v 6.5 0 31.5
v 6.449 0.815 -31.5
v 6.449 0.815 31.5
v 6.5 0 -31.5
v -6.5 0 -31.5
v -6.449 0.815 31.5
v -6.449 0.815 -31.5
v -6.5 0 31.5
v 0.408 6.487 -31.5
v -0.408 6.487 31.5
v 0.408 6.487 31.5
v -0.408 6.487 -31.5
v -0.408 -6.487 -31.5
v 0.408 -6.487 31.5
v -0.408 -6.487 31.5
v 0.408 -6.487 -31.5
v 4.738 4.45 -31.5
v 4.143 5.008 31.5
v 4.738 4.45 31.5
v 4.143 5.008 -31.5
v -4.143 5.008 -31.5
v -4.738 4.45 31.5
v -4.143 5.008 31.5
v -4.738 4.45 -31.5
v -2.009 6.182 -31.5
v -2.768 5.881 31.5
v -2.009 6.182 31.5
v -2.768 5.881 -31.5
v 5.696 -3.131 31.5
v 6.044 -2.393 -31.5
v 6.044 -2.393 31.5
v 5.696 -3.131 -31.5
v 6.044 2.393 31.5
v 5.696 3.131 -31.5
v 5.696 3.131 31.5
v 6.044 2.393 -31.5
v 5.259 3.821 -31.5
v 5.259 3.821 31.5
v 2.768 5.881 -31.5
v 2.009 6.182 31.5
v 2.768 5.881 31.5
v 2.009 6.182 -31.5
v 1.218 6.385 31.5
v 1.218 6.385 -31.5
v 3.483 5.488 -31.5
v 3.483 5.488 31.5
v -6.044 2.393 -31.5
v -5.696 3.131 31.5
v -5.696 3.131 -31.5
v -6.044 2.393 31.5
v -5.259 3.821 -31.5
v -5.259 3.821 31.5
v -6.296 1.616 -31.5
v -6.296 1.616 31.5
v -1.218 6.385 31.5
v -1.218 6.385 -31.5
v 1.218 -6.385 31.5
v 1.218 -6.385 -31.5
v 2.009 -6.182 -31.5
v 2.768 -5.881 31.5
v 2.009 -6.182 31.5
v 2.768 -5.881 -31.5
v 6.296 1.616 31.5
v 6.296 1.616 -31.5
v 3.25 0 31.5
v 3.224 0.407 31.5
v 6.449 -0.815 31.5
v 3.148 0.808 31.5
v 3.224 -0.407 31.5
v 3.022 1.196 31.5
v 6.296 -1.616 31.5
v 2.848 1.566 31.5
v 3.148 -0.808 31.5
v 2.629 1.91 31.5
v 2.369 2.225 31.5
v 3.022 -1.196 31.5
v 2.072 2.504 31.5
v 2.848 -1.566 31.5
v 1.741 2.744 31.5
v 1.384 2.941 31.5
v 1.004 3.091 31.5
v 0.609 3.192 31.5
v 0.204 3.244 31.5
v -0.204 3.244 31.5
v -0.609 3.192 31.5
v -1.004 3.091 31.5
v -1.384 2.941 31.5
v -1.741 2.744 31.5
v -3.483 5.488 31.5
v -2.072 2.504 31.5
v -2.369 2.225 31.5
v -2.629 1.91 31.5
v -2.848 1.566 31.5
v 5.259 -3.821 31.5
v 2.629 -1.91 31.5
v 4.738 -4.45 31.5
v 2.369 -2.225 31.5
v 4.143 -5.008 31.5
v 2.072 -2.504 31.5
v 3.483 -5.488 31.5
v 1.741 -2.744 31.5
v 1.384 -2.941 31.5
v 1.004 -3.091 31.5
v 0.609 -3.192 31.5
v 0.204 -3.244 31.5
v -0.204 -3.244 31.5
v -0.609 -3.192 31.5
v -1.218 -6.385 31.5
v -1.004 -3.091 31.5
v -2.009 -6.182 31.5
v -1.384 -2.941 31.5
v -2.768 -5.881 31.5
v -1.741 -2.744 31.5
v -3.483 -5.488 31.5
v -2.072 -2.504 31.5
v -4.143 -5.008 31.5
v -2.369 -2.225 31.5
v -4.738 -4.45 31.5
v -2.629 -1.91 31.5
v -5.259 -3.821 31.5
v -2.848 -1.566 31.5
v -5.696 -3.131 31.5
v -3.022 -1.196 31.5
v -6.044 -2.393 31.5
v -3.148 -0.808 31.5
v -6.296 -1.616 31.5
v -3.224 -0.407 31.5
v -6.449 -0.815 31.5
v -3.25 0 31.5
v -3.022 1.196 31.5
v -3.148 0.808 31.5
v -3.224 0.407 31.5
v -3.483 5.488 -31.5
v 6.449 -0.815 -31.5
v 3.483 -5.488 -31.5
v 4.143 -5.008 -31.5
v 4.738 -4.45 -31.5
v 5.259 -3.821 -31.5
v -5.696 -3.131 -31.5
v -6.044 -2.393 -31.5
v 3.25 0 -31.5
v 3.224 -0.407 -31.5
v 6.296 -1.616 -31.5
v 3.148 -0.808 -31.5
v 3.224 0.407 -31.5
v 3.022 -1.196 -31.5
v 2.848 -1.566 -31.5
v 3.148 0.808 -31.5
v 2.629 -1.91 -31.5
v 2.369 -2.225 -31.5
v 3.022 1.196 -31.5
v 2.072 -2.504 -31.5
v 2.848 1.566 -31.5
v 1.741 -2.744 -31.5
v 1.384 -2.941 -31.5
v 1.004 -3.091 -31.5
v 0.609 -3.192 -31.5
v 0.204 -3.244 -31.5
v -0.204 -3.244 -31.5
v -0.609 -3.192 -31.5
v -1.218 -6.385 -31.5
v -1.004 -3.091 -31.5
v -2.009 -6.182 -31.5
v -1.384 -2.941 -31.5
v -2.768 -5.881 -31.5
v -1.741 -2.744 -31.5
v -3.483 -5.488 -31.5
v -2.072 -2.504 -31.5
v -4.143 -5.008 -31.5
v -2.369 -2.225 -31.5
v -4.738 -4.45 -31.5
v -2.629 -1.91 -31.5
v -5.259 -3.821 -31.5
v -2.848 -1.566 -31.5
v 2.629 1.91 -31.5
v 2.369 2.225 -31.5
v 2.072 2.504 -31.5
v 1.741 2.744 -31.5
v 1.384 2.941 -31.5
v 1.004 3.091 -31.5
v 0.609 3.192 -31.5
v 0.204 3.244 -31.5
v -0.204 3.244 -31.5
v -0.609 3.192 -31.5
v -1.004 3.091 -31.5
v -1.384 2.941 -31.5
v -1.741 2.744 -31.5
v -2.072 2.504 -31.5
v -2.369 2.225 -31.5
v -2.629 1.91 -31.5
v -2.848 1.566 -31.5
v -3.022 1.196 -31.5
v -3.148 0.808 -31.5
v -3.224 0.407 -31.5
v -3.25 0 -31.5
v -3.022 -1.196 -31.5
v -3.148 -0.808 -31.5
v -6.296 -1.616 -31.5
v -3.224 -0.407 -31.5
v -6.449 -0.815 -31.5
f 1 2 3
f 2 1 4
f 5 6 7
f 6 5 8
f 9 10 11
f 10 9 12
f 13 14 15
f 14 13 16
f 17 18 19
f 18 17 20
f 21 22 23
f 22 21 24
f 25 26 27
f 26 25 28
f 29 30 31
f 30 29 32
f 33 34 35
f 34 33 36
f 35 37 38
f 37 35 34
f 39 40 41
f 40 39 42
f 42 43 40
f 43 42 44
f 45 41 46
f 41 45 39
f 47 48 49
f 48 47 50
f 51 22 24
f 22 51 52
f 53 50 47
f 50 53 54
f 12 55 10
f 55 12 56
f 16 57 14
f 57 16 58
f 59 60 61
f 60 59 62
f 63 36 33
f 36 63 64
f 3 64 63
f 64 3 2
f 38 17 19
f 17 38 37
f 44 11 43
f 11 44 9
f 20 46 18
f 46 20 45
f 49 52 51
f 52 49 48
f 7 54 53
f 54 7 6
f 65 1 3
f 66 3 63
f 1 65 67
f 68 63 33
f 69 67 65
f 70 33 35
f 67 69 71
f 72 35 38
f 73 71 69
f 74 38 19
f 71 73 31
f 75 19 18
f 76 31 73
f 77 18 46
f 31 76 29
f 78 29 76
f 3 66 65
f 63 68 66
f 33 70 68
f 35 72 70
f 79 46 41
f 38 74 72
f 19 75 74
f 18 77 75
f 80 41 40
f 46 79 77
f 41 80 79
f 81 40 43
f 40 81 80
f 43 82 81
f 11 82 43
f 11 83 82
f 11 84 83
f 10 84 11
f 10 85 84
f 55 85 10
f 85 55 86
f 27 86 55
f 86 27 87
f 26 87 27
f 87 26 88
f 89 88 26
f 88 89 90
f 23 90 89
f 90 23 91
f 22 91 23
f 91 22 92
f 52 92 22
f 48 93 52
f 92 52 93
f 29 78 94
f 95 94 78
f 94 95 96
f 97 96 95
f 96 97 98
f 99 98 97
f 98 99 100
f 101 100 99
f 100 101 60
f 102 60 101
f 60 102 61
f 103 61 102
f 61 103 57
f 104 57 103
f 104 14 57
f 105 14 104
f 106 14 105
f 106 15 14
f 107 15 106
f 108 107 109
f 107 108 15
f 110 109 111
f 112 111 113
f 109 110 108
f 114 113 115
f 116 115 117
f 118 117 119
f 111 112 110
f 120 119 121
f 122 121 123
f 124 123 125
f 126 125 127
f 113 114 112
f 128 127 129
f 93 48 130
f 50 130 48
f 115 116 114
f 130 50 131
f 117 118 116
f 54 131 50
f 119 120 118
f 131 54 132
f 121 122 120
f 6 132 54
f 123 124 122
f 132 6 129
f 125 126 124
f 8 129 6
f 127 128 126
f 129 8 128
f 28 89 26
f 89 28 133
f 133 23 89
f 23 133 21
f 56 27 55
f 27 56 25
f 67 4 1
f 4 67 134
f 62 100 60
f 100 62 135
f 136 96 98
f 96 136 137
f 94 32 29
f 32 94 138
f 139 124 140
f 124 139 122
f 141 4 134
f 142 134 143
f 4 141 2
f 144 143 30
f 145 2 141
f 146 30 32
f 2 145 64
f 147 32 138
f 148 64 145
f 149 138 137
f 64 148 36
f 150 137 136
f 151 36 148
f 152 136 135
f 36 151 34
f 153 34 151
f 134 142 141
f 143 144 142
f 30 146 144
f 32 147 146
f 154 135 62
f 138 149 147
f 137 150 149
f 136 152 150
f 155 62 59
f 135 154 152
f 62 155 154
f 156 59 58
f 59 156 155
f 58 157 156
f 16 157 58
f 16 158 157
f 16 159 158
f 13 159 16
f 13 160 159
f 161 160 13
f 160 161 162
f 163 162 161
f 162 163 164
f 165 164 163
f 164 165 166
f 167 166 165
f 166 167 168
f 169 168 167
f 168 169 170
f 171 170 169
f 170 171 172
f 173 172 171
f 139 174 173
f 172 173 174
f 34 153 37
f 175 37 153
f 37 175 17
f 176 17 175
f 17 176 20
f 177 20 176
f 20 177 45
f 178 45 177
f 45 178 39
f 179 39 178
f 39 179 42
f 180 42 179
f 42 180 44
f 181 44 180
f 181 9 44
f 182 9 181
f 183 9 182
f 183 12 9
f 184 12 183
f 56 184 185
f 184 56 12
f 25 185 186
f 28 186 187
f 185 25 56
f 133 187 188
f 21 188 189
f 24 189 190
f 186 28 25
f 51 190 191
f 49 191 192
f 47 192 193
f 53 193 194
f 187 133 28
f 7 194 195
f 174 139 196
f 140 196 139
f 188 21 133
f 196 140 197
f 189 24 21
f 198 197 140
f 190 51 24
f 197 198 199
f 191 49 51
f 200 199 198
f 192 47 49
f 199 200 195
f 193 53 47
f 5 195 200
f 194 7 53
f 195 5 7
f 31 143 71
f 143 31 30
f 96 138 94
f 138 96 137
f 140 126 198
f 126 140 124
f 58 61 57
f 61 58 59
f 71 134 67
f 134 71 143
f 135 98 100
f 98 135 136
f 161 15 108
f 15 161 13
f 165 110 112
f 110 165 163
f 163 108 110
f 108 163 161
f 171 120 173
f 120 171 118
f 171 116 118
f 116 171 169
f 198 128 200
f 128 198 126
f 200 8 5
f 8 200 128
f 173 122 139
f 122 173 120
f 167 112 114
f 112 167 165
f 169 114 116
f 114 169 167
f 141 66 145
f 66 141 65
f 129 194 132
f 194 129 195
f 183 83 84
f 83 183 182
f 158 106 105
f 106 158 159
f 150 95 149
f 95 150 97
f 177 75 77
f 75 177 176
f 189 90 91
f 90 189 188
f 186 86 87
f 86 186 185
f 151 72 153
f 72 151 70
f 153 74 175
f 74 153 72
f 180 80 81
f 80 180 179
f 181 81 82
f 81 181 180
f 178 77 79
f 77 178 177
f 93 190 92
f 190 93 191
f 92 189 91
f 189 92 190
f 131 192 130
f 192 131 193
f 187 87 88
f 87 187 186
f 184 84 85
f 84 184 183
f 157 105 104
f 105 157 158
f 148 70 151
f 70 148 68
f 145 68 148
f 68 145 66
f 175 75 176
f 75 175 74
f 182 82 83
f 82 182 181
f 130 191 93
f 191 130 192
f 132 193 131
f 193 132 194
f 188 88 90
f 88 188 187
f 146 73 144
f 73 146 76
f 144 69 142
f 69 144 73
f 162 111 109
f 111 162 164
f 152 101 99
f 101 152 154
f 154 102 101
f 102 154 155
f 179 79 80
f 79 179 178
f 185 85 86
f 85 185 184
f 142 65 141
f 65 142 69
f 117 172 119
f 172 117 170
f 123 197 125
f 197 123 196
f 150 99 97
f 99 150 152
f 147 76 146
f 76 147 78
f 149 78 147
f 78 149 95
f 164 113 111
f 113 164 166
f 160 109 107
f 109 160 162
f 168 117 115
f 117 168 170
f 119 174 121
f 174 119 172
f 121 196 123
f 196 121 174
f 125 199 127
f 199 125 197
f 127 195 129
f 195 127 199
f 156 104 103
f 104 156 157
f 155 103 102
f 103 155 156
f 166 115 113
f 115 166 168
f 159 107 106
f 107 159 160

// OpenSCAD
$fn = 50;


difference() {
	union() {
		translate(v = [0, 0, -31.5000000000]) {
			cylinder(h = 63, r = 6.5000000000);
		}
	}
	union() {
		translate(v = [0, 0, -100.0000000000]) {
			cylinder(h = 200, r = 3.2500000000);
		}
	}
}
